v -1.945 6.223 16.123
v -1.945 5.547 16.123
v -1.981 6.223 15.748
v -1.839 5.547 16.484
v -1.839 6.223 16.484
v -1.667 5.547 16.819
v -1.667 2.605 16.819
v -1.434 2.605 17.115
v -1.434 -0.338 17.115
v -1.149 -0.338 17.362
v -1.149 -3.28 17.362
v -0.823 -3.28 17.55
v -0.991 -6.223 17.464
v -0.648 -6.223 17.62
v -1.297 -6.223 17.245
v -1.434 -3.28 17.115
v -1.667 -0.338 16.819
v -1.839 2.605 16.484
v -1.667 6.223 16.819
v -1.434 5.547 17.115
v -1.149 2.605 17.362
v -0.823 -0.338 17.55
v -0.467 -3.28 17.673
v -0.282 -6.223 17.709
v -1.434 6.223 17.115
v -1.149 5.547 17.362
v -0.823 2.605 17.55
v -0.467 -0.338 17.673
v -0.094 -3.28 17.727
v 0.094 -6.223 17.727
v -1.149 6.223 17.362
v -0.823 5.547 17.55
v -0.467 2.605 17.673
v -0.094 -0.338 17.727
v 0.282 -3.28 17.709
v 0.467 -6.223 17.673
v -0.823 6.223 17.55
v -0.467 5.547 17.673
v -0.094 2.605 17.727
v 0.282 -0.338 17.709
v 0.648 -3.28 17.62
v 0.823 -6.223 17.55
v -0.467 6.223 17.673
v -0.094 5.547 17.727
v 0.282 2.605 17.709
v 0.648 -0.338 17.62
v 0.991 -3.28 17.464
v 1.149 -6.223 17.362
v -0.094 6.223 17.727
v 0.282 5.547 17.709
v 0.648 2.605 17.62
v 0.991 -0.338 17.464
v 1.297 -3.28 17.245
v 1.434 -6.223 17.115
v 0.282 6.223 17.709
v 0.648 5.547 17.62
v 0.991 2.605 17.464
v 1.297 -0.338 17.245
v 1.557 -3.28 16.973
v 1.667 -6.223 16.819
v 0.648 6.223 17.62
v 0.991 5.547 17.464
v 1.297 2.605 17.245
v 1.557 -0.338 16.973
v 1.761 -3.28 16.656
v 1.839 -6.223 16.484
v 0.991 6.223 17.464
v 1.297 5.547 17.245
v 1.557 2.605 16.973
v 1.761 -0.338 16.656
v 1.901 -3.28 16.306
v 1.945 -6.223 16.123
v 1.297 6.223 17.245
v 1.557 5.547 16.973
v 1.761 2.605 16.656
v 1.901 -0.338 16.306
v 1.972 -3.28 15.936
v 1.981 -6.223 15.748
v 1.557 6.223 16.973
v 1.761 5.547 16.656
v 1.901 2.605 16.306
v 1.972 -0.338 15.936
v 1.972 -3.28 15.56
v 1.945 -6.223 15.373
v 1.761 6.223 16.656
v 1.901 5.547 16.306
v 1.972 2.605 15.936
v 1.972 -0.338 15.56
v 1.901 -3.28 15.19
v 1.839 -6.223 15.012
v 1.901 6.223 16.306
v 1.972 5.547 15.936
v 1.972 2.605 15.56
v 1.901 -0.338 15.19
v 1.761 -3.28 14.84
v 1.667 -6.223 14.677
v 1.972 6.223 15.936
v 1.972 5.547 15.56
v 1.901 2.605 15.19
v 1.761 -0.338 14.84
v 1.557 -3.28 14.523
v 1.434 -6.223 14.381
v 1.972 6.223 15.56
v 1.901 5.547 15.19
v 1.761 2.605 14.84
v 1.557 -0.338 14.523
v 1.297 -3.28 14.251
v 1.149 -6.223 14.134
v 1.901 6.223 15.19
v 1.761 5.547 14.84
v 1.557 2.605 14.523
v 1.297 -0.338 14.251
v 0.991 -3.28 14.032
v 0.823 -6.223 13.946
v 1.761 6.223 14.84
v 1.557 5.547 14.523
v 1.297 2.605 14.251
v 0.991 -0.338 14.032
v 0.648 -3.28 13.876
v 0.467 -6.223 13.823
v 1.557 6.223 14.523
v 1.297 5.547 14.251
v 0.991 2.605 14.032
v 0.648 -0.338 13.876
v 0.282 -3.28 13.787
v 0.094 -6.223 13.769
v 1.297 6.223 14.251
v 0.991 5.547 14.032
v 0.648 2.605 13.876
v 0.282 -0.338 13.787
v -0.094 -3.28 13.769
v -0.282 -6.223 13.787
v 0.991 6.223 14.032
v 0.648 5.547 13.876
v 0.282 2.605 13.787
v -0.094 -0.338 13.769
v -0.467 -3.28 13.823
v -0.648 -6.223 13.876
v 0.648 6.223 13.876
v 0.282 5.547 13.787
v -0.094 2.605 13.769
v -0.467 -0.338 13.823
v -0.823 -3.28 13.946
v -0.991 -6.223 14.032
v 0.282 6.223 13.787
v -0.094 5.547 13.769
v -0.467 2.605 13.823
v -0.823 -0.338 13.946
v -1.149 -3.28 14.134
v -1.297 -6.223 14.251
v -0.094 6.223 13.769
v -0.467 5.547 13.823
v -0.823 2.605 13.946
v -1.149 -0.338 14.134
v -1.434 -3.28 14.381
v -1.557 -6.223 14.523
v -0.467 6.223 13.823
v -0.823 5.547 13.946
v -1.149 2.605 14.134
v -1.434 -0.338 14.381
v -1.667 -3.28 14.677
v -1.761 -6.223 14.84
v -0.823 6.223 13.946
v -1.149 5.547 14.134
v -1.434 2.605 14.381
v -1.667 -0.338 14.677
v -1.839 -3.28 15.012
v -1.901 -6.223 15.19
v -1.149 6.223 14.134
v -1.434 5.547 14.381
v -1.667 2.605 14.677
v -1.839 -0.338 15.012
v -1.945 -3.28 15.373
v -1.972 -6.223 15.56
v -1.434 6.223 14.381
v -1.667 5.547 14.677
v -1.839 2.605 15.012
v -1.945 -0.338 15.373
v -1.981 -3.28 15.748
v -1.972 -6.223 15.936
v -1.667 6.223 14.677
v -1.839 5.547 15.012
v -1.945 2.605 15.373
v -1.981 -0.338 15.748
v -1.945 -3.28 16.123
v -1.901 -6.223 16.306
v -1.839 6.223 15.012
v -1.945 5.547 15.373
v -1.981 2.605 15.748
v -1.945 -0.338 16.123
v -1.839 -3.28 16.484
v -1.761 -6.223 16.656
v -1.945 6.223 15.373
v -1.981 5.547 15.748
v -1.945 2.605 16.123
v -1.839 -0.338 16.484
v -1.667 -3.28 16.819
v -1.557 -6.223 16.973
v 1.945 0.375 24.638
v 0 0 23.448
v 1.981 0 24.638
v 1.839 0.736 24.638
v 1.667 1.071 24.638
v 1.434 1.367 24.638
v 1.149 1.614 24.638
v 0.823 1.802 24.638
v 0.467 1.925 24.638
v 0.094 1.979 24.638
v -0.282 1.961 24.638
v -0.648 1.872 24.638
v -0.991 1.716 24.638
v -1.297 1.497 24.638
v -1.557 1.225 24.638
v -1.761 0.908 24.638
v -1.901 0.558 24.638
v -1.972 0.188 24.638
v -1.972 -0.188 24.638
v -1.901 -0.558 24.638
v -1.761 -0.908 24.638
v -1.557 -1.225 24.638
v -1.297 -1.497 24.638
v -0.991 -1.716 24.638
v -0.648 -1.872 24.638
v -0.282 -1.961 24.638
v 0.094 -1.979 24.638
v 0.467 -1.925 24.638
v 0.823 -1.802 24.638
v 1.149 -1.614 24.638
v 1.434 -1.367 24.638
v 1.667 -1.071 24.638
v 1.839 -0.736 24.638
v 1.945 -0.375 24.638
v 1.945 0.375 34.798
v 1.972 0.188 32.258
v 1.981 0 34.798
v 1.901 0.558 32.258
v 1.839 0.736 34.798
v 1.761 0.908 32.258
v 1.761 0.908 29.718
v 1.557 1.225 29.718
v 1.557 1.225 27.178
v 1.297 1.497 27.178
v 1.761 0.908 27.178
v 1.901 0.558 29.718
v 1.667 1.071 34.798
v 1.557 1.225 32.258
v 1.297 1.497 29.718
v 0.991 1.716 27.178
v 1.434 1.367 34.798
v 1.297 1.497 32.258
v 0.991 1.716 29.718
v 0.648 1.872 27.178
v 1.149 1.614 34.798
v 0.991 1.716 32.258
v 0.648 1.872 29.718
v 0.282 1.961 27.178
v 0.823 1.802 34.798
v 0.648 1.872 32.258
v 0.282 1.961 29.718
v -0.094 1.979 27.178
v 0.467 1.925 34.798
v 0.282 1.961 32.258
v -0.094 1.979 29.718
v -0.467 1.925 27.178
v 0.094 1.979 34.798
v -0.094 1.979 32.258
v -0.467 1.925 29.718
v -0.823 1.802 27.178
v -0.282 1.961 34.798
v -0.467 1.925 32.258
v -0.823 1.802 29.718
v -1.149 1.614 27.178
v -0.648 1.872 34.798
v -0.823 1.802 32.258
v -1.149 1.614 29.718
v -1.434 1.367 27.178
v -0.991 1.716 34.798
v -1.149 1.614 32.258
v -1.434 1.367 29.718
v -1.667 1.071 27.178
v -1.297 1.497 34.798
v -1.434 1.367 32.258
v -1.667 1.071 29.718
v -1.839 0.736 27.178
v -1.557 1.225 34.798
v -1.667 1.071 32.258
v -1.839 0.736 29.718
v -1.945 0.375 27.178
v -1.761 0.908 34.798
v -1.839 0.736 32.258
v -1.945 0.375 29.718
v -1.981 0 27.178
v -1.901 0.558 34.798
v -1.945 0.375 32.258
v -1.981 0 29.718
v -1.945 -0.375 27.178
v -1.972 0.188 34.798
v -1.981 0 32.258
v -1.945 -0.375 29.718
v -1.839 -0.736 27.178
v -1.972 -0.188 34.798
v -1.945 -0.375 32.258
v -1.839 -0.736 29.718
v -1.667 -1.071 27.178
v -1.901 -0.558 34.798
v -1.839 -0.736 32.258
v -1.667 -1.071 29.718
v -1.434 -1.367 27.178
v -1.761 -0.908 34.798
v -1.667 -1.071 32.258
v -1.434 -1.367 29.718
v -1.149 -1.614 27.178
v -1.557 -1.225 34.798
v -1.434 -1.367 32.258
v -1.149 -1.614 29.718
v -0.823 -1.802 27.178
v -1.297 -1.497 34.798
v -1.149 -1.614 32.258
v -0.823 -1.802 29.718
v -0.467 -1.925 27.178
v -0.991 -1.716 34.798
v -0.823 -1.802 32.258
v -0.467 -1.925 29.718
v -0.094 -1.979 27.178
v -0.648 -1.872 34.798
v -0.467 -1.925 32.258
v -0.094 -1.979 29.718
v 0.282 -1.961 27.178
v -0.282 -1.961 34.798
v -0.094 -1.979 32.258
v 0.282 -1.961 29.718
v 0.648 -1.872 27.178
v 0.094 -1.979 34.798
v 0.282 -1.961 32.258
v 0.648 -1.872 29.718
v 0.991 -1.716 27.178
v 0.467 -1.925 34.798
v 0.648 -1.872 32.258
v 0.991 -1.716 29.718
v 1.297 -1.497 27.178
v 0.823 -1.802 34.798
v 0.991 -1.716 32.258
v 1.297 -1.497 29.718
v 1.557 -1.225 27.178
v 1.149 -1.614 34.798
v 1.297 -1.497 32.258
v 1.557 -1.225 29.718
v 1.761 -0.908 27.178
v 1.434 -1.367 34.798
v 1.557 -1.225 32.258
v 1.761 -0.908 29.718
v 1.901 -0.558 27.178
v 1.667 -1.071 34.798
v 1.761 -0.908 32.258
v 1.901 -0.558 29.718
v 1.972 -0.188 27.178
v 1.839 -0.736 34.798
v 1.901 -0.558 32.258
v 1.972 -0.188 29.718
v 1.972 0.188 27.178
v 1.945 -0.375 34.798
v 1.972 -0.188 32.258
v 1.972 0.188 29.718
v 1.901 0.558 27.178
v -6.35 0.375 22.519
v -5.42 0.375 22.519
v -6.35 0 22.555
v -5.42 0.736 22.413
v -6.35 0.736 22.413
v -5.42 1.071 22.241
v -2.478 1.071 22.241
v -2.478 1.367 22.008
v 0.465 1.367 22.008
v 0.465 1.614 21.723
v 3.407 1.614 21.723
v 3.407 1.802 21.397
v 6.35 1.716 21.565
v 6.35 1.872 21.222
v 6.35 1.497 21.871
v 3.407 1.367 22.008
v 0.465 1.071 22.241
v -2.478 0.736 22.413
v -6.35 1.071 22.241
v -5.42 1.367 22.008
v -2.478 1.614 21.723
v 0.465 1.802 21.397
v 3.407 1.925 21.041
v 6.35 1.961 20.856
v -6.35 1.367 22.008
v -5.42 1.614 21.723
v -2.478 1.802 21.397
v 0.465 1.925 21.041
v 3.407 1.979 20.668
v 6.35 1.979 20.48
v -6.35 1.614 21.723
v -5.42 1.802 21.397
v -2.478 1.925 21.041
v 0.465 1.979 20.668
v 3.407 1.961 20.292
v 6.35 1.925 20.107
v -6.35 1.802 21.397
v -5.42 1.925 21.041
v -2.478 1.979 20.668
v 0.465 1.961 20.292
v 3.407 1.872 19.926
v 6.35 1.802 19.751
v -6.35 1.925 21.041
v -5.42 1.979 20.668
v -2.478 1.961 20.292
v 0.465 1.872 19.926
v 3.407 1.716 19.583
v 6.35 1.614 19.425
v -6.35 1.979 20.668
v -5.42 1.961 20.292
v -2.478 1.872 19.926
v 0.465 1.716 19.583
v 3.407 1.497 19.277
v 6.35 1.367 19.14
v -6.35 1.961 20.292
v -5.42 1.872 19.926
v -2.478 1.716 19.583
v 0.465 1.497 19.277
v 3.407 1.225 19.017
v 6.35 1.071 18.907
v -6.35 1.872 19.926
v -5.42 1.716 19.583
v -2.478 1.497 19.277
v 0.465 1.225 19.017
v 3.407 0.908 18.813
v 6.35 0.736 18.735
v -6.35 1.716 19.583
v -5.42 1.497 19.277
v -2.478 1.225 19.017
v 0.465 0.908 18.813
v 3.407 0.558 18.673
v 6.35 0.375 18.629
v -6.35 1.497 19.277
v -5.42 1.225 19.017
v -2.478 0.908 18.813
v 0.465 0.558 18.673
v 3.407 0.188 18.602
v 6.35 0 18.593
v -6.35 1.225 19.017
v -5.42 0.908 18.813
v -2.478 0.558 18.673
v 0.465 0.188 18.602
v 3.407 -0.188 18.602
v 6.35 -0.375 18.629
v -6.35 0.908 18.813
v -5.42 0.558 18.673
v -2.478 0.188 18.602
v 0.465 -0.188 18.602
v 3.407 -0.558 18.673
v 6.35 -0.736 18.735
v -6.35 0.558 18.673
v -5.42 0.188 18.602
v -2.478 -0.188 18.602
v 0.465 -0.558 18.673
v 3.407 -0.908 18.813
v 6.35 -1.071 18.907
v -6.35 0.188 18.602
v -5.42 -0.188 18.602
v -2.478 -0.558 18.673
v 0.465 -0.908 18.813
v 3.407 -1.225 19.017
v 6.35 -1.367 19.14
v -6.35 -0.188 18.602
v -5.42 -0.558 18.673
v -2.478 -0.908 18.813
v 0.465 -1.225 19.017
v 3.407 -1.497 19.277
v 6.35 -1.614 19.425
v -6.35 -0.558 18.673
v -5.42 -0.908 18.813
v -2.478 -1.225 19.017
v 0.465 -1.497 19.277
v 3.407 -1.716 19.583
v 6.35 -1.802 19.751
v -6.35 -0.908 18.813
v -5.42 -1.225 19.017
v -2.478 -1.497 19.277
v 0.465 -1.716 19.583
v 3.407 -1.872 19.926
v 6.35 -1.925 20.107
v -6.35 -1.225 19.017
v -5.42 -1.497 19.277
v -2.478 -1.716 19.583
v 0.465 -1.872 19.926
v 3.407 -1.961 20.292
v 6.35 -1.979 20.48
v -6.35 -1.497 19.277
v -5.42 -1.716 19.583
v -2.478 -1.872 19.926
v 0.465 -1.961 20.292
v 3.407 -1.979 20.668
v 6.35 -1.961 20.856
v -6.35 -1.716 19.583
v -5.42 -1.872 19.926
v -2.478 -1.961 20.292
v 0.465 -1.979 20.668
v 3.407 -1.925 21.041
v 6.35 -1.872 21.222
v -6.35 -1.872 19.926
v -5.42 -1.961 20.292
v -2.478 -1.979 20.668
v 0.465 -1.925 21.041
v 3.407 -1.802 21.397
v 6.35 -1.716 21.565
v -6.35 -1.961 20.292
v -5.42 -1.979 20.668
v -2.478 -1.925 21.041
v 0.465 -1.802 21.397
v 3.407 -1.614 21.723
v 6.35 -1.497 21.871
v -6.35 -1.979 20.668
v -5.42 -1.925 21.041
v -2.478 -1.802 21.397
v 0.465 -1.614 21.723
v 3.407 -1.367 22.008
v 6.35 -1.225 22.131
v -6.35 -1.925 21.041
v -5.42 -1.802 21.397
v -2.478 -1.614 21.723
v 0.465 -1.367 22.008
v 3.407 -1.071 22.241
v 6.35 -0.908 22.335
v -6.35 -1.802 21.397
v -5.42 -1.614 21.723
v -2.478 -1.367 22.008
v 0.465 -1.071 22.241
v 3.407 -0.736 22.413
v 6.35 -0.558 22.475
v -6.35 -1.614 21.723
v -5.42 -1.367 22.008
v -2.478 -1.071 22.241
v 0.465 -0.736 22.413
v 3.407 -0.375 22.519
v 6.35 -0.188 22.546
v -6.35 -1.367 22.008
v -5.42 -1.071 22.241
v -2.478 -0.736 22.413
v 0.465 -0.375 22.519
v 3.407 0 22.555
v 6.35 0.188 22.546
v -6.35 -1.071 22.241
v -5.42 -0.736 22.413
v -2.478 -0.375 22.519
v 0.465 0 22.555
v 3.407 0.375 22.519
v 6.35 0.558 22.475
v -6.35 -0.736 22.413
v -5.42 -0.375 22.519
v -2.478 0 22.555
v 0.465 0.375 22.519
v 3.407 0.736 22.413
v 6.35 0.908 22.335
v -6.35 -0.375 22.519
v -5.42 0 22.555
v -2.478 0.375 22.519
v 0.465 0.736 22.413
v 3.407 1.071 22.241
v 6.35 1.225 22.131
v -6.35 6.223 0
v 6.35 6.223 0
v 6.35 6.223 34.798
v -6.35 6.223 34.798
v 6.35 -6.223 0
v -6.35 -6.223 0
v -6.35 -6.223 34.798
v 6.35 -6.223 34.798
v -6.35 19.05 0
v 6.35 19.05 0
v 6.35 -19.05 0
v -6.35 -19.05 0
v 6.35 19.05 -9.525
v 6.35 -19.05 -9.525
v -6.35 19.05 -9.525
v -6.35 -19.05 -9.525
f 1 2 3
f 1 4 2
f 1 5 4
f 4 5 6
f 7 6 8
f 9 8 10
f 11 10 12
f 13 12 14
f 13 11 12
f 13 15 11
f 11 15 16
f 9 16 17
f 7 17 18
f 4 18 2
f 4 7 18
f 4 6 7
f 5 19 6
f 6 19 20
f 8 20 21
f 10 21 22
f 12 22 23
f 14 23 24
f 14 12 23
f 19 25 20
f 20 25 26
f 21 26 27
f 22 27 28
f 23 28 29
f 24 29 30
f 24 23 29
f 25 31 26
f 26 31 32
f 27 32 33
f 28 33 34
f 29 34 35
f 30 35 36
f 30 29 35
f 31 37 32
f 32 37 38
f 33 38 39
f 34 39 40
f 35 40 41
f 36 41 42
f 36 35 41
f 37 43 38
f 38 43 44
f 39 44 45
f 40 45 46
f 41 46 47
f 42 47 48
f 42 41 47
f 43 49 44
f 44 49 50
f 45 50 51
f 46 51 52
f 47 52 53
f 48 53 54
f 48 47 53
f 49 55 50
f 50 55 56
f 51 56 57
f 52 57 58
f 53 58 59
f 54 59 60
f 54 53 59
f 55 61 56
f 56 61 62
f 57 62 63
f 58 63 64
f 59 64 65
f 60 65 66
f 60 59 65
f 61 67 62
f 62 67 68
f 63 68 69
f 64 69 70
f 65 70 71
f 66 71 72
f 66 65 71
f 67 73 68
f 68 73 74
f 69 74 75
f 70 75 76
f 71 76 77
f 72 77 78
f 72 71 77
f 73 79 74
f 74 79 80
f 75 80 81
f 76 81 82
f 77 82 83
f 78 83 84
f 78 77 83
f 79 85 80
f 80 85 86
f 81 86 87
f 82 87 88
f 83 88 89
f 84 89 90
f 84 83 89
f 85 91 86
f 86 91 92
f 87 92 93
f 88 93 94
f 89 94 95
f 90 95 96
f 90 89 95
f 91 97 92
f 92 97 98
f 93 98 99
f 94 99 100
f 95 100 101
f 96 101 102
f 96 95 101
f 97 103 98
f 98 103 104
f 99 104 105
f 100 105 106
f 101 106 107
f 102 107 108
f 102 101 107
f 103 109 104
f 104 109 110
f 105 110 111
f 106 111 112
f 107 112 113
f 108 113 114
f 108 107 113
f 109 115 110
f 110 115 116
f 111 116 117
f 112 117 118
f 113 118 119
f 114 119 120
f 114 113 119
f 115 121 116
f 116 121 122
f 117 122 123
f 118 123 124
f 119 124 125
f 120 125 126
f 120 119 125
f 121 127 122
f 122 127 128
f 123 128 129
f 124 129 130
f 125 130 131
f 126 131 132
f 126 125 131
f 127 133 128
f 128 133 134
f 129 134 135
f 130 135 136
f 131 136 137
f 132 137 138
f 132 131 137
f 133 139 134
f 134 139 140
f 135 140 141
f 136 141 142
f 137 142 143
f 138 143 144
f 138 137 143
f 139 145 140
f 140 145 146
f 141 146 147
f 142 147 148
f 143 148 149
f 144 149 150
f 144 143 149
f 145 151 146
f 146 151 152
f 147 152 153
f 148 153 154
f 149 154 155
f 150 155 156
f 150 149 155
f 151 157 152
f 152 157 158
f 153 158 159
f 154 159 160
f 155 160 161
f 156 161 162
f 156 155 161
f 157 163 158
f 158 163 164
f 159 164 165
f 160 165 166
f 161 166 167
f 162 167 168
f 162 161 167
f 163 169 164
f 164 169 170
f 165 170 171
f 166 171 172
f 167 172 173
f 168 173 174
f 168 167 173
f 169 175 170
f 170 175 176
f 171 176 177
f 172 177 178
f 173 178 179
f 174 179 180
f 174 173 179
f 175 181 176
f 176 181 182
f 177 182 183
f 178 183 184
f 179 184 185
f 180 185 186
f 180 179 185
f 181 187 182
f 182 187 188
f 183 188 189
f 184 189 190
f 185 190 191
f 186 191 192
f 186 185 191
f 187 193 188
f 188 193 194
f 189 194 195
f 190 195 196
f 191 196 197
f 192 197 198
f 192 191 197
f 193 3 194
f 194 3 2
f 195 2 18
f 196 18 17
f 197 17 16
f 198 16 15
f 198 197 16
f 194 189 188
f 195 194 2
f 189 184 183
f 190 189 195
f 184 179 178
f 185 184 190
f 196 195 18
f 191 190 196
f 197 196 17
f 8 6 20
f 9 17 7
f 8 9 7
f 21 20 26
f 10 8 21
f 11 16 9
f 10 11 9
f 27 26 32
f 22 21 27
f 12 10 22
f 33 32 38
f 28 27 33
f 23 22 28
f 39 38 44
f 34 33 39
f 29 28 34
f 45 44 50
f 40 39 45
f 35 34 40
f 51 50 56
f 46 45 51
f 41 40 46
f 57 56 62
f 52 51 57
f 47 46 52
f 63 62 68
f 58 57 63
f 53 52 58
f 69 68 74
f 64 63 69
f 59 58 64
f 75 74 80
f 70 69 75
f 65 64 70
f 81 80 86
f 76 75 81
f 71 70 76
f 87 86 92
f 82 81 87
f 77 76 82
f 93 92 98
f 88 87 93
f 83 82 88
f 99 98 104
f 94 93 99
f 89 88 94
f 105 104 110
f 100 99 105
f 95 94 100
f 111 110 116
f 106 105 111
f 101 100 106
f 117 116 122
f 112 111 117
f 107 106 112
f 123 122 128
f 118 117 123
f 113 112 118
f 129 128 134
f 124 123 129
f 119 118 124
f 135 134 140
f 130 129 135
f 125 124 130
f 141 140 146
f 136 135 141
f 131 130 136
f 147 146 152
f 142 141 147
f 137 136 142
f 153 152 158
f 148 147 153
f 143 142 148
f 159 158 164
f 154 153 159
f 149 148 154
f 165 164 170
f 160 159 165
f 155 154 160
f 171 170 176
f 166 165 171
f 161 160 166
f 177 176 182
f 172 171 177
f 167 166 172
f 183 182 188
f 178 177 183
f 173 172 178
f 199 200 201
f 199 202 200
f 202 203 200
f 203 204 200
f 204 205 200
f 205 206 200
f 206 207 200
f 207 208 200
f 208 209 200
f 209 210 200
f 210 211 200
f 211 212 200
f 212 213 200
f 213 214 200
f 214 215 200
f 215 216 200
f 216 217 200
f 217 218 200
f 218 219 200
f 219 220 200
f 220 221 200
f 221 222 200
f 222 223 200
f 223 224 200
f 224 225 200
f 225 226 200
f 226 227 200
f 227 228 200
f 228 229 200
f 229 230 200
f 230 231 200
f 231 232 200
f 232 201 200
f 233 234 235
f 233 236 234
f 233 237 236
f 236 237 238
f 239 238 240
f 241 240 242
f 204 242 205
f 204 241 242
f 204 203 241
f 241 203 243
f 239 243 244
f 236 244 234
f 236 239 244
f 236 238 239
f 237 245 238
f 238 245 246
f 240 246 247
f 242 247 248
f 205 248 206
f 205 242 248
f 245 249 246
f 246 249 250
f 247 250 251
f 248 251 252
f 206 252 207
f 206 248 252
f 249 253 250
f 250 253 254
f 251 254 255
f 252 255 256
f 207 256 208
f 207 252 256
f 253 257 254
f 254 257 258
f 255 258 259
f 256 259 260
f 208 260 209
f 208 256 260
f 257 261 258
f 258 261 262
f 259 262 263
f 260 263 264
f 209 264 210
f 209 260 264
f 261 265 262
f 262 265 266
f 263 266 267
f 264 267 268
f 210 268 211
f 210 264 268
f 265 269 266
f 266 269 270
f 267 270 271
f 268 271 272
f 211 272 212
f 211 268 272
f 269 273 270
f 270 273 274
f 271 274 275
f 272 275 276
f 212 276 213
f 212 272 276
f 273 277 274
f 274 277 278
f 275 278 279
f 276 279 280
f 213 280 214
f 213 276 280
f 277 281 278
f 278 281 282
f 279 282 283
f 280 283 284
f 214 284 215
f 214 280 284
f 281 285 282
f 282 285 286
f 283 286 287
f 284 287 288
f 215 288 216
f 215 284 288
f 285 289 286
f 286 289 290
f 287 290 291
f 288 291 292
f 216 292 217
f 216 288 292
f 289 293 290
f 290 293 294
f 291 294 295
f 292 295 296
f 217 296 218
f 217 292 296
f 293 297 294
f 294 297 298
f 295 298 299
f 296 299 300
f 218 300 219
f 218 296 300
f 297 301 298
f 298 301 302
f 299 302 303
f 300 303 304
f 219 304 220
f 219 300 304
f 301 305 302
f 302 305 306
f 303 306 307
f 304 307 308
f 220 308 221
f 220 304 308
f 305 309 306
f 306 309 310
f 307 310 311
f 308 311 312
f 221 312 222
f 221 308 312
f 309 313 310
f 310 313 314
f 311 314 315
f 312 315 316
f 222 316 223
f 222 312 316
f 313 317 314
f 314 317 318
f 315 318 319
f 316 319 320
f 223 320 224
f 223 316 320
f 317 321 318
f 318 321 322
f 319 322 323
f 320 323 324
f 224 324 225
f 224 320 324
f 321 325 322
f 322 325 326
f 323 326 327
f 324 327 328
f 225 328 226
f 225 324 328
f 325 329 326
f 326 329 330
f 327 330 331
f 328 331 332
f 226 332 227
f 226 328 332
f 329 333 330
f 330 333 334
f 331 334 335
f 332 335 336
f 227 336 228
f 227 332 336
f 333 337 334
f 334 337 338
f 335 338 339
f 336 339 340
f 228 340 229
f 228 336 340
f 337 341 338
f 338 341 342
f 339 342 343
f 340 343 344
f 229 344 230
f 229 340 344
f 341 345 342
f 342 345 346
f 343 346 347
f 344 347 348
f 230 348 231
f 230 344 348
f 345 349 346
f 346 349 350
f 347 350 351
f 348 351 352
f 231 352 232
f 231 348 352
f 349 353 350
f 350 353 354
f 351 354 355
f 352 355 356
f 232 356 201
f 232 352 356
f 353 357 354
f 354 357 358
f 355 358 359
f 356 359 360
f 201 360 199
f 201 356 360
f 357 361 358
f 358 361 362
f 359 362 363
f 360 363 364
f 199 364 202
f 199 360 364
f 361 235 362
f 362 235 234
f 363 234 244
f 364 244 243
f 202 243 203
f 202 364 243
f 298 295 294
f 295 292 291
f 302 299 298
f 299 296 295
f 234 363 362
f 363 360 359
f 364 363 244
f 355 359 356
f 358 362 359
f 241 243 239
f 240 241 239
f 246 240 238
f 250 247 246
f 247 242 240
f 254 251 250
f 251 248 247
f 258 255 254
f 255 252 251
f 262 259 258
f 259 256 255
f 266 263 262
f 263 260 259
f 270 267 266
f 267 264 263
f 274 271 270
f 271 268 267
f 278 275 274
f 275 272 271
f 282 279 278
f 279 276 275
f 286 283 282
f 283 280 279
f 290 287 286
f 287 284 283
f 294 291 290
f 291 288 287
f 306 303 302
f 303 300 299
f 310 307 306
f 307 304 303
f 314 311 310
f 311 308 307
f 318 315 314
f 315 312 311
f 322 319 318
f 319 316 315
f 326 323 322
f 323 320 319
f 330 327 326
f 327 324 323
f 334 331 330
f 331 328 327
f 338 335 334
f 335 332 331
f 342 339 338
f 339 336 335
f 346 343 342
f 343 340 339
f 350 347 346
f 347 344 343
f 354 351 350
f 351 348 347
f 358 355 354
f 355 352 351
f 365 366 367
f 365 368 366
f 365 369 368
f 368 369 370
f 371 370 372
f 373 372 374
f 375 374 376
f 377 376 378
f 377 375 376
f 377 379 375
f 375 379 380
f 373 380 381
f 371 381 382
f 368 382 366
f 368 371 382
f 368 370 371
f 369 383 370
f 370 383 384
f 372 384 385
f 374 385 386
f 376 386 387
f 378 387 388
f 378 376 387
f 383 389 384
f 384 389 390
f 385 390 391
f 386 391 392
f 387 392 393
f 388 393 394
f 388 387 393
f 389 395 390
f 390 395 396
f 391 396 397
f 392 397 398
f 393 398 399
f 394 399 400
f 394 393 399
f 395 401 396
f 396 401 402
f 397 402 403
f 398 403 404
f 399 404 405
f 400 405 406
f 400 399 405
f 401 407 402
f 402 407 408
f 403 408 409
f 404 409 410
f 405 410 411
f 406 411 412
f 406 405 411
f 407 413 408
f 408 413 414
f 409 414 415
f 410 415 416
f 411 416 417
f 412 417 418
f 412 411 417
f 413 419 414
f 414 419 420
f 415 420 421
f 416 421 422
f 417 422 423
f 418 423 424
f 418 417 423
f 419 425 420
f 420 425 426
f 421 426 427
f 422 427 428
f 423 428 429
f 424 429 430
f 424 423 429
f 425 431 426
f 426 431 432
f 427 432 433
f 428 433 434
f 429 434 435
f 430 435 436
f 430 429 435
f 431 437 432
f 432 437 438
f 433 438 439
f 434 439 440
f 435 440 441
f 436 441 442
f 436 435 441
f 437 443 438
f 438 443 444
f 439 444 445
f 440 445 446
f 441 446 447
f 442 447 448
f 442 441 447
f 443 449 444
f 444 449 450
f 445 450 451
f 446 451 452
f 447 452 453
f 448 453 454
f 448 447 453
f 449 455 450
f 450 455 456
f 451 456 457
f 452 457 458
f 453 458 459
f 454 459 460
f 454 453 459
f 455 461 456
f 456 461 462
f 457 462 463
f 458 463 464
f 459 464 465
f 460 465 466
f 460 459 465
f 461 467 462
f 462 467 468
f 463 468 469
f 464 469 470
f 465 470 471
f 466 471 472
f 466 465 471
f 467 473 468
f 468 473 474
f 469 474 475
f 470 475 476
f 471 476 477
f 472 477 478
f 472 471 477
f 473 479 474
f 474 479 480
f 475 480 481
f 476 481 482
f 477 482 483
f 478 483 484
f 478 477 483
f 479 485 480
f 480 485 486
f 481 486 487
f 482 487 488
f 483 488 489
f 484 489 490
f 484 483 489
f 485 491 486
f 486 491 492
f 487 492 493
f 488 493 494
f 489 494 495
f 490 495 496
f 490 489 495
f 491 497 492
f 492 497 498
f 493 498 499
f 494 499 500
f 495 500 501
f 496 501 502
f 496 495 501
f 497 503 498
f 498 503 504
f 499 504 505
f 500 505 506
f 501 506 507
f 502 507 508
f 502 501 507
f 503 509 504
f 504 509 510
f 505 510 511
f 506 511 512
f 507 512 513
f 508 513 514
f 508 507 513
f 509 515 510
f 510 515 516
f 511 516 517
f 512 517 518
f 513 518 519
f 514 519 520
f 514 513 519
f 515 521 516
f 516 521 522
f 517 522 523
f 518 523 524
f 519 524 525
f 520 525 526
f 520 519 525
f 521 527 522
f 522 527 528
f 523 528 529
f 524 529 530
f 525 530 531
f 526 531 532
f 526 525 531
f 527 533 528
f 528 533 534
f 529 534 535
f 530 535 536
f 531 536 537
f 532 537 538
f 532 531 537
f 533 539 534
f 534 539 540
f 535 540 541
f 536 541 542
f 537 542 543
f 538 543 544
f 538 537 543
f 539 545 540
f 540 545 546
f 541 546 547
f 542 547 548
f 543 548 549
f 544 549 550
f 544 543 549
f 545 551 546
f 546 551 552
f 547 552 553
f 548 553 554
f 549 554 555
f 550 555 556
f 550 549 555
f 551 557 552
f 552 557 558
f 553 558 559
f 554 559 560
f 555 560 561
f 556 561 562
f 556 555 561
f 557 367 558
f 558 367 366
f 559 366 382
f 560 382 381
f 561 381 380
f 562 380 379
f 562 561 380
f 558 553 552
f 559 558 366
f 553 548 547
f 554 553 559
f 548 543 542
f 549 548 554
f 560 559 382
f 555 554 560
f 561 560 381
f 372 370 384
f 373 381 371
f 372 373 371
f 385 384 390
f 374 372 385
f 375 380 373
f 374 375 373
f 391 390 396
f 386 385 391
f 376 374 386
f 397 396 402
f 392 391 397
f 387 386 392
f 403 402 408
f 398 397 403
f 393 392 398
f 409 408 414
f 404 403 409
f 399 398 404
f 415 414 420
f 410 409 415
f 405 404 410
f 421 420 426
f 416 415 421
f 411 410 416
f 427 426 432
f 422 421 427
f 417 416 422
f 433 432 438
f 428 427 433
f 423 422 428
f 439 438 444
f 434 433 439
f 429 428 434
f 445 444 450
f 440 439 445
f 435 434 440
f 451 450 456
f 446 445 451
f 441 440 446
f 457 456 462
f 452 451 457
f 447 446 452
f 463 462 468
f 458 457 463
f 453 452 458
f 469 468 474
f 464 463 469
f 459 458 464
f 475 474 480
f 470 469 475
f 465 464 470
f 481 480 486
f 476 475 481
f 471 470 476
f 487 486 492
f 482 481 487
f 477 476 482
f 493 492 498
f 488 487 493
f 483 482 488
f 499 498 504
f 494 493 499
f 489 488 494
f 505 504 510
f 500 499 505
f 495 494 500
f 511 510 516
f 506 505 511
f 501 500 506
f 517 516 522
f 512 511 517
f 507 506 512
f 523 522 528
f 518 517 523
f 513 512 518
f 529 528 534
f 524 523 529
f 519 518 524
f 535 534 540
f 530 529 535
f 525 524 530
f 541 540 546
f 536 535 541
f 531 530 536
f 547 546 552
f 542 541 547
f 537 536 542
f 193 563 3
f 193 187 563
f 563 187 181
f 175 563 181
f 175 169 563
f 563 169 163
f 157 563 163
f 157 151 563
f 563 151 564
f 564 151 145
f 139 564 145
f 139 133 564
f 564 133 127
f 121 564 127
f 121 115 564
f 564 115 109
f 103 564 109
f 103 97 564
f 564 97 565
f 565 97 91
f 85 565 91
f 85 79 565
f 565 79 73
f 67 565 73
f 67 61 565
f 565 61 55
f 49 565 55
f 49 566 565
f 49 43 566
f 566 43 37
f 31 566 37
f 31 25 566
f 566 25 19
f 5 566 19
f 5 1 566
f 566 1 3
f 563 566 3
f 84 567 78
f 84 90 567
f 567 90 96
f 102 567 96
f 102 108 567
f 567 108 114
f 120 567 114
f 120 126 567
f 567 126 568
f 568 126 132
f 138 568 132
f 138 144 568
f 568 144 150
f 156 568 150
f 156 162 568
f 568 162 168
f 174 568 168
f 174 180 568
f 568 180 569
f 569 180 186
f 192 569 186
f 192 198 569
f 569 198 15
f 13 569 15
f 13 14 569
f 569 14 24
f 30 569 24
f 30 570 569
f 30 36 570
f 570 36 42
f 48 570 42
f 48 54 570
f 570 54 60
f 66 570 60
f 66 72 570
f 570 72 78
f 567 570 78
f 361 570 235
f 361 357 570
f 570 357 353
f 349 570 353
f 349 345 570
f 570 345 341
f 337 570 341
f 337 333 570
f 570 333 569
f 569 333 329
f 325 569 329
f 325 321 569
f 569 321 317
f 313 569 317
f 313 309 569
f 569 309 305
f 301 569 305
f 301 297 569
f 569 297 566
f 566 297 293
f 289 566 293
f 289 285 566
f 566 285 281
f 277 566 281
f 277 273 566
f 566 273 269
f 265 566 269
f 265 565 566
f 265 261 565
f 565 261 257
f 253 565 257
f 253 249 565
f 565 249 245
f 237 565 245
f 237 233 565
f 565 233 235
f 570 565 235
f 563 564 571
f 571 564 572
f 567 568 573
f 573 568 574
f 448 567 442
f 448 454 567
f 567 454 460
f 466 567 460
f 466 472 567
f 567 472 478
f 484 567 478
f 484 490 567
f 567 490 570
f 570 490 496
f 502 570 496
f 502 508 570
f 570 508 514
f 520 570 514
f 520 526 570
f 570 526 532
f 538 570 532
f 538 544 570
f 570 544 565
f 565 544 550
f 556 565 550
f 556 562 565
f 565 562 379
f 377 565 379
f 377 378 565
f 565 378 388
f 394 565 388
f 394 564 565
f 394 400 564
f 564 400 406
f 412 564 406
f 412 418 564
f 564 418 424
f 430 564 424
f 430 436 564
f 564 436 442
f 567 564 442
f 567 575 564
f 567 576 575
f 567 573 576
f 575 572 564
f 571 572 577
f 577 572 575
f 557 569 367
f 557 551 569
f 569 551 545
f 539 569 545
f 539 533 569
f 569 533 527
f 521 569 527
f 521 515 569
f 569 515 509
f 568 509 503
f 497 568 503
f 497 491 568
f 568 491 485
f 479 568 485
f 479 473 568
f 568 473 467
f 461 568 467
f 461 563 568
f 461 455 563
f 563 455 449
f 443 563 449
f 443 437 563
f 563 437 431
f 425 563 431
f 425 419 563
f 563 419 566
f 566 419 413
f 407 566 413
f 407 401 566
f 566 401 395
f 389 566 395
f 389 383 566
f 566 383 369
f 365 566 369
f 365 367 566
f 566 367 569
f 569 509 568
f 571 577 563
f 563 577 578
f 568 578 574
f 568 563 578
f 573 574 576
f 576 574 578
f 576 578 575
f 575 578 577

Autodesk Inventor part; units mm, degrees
ref_plane "YZ Plane" through (0, 0, 0) normal (1, 0, 0) x (0, 1, 0)
ref_plane "XZ Plane" through (0, 0, 0) normal (0, 1, 0) x (-1, 0, 0)
ref_plane "XY Plane" through (0, 0, 0) normal (0, 0, 1) x (1, 0, 0)
sketch "Sketch1" plane through (0, 0, 0) normal (0, 0, 1) x (1, 0, 0)
  line L0 (-6.35, -19.05) -> (6.35, -19.05)
  line L1 (6.35, -19.05) -> (6.35, 19.05)
  line L2 (6.35, 19.05) -> (-6.35, 19.05)
  line L3 (-6.35, 19.05) -> (-6.35, -19.05)
  line L4 (-6.35, -19.05) -> (6.35, 19.05) construction
  line L5 (6.35, -19.05) -> (-6.35, 19.05) construction
  point P0 (0, 0)
  dimension "height" = 38.1
  dimension "width" = 12.7
extrude "Extrusion9" add sketch "Sketch1" against normal blind 9.525
sketch "Sketch19" plane through (0, 0, 0) normal (0, 0, 1) x (1, 0, 0)
  line L0 (-6.35, -6.223) -> (6.35, -6.223)
  line L1 (6.35, -6.223) -> (6.35, 6.223)
  line L2 (6.35, 6.223) -> (-6.35, 6.223)
  line L3 (-6.35, 6.223) -> (-6.35, -6.223)
  line L4 (-6.35, -6.223) -> (6.35, 6.223) construction
  line L5 (6.35, -6.223) -> (-6.35, 6.223) construction
  line L6 (-6.35, 19.05) -> (-6.35, -19.05) projected
  point P0 (0, 0)
  dimension "d126" = 12.446
extrude "Extrusion10" add sketch "Sketch19" along normal blind 34.798
sketch "Sketch20" plane through (6.35, -19.05, -9.525) normal (1, 0, 0) x (0, 0, -1)
  line L0 (-9.525, 25.273) -> (-9.525, 38.1) projected
  line L1 (-9.525, 19.05) -> (-44.323, 19.05) construction
  line L2 (-44.323, 25.273) -> (-44.323, 12.827) construction
  point P0 (-30.099, 19.05)
  dimension "d129" = 20.574
  dimension "d137" = 0
hole "Hole13" at (6.35, 0, 20.574) direction (-1, 0, 0) diameter 3.9624 end through all thread size "10-32 UNF" class "2B" standard "ANSI Unified Screw Threads"
sketch "Sketch21" plane through (0, 0, 34.798) normal (0, 0, 1) x (1, 0, 0)
  point P0 (0, 0)
  point P1 (0, 0)
hole "Hole14" at (0, 0, 34.798) direction (0, 0, -1) diameter 3.9624 depth 10.16 tip angle 118 thread size "10-32 UNF" class "2B" standard "ANSI Unified Screw Threads"
sketch "Sketch22" plane through (-6.35, -6.223, 0) normal (0, -1, 0) x (1, 0, 0)
  point P0 (6.35, 0)
sketch "Sketch23" plane through (-6.35, -6.223, 0) normal (0, -1, 0) x (1, 0, 0)
  line L0 (0, 34.798) -> (12.7, 34.798) projected
  point P0 (6.35, 0)
  point P1 (6.35, 15.748)
  dimension "d145" = 19.05
hole "Hole15" at (0, -6.223, 15.748) direction (0, 1, 0) diameter 3.9624 end through all thread size "10-32 UNF" class "2B" standard "ANSI Unified Screw Threads"
equation "\"height\" = partHeight"
equation "\"width\" = partWidth"
equation "\"d124\" = depthBehindPlate"
equation "\"d126\" = slotWidth"
equation "\"d127\" = 2 * centerLineOfCylinder + plateThickness"
equation "\"d129\" = centerLineOfCylinder + plateThickness"
equation "\"partWidth\" = 12.7"
equation "\"centerLineOfCylinder\" = 14.224"
equation "\"partHeight\" = 38.1"
equation "\"depthBehindPlate\" = 9.525"
equation "\"plateThickness\" = 6.35"
equation "\"printerOffset\" = 0.254"
equation "\"slotWidth\" = 12.446"
properties part number "vexSupportForArm" material "Aluminum 6061"
